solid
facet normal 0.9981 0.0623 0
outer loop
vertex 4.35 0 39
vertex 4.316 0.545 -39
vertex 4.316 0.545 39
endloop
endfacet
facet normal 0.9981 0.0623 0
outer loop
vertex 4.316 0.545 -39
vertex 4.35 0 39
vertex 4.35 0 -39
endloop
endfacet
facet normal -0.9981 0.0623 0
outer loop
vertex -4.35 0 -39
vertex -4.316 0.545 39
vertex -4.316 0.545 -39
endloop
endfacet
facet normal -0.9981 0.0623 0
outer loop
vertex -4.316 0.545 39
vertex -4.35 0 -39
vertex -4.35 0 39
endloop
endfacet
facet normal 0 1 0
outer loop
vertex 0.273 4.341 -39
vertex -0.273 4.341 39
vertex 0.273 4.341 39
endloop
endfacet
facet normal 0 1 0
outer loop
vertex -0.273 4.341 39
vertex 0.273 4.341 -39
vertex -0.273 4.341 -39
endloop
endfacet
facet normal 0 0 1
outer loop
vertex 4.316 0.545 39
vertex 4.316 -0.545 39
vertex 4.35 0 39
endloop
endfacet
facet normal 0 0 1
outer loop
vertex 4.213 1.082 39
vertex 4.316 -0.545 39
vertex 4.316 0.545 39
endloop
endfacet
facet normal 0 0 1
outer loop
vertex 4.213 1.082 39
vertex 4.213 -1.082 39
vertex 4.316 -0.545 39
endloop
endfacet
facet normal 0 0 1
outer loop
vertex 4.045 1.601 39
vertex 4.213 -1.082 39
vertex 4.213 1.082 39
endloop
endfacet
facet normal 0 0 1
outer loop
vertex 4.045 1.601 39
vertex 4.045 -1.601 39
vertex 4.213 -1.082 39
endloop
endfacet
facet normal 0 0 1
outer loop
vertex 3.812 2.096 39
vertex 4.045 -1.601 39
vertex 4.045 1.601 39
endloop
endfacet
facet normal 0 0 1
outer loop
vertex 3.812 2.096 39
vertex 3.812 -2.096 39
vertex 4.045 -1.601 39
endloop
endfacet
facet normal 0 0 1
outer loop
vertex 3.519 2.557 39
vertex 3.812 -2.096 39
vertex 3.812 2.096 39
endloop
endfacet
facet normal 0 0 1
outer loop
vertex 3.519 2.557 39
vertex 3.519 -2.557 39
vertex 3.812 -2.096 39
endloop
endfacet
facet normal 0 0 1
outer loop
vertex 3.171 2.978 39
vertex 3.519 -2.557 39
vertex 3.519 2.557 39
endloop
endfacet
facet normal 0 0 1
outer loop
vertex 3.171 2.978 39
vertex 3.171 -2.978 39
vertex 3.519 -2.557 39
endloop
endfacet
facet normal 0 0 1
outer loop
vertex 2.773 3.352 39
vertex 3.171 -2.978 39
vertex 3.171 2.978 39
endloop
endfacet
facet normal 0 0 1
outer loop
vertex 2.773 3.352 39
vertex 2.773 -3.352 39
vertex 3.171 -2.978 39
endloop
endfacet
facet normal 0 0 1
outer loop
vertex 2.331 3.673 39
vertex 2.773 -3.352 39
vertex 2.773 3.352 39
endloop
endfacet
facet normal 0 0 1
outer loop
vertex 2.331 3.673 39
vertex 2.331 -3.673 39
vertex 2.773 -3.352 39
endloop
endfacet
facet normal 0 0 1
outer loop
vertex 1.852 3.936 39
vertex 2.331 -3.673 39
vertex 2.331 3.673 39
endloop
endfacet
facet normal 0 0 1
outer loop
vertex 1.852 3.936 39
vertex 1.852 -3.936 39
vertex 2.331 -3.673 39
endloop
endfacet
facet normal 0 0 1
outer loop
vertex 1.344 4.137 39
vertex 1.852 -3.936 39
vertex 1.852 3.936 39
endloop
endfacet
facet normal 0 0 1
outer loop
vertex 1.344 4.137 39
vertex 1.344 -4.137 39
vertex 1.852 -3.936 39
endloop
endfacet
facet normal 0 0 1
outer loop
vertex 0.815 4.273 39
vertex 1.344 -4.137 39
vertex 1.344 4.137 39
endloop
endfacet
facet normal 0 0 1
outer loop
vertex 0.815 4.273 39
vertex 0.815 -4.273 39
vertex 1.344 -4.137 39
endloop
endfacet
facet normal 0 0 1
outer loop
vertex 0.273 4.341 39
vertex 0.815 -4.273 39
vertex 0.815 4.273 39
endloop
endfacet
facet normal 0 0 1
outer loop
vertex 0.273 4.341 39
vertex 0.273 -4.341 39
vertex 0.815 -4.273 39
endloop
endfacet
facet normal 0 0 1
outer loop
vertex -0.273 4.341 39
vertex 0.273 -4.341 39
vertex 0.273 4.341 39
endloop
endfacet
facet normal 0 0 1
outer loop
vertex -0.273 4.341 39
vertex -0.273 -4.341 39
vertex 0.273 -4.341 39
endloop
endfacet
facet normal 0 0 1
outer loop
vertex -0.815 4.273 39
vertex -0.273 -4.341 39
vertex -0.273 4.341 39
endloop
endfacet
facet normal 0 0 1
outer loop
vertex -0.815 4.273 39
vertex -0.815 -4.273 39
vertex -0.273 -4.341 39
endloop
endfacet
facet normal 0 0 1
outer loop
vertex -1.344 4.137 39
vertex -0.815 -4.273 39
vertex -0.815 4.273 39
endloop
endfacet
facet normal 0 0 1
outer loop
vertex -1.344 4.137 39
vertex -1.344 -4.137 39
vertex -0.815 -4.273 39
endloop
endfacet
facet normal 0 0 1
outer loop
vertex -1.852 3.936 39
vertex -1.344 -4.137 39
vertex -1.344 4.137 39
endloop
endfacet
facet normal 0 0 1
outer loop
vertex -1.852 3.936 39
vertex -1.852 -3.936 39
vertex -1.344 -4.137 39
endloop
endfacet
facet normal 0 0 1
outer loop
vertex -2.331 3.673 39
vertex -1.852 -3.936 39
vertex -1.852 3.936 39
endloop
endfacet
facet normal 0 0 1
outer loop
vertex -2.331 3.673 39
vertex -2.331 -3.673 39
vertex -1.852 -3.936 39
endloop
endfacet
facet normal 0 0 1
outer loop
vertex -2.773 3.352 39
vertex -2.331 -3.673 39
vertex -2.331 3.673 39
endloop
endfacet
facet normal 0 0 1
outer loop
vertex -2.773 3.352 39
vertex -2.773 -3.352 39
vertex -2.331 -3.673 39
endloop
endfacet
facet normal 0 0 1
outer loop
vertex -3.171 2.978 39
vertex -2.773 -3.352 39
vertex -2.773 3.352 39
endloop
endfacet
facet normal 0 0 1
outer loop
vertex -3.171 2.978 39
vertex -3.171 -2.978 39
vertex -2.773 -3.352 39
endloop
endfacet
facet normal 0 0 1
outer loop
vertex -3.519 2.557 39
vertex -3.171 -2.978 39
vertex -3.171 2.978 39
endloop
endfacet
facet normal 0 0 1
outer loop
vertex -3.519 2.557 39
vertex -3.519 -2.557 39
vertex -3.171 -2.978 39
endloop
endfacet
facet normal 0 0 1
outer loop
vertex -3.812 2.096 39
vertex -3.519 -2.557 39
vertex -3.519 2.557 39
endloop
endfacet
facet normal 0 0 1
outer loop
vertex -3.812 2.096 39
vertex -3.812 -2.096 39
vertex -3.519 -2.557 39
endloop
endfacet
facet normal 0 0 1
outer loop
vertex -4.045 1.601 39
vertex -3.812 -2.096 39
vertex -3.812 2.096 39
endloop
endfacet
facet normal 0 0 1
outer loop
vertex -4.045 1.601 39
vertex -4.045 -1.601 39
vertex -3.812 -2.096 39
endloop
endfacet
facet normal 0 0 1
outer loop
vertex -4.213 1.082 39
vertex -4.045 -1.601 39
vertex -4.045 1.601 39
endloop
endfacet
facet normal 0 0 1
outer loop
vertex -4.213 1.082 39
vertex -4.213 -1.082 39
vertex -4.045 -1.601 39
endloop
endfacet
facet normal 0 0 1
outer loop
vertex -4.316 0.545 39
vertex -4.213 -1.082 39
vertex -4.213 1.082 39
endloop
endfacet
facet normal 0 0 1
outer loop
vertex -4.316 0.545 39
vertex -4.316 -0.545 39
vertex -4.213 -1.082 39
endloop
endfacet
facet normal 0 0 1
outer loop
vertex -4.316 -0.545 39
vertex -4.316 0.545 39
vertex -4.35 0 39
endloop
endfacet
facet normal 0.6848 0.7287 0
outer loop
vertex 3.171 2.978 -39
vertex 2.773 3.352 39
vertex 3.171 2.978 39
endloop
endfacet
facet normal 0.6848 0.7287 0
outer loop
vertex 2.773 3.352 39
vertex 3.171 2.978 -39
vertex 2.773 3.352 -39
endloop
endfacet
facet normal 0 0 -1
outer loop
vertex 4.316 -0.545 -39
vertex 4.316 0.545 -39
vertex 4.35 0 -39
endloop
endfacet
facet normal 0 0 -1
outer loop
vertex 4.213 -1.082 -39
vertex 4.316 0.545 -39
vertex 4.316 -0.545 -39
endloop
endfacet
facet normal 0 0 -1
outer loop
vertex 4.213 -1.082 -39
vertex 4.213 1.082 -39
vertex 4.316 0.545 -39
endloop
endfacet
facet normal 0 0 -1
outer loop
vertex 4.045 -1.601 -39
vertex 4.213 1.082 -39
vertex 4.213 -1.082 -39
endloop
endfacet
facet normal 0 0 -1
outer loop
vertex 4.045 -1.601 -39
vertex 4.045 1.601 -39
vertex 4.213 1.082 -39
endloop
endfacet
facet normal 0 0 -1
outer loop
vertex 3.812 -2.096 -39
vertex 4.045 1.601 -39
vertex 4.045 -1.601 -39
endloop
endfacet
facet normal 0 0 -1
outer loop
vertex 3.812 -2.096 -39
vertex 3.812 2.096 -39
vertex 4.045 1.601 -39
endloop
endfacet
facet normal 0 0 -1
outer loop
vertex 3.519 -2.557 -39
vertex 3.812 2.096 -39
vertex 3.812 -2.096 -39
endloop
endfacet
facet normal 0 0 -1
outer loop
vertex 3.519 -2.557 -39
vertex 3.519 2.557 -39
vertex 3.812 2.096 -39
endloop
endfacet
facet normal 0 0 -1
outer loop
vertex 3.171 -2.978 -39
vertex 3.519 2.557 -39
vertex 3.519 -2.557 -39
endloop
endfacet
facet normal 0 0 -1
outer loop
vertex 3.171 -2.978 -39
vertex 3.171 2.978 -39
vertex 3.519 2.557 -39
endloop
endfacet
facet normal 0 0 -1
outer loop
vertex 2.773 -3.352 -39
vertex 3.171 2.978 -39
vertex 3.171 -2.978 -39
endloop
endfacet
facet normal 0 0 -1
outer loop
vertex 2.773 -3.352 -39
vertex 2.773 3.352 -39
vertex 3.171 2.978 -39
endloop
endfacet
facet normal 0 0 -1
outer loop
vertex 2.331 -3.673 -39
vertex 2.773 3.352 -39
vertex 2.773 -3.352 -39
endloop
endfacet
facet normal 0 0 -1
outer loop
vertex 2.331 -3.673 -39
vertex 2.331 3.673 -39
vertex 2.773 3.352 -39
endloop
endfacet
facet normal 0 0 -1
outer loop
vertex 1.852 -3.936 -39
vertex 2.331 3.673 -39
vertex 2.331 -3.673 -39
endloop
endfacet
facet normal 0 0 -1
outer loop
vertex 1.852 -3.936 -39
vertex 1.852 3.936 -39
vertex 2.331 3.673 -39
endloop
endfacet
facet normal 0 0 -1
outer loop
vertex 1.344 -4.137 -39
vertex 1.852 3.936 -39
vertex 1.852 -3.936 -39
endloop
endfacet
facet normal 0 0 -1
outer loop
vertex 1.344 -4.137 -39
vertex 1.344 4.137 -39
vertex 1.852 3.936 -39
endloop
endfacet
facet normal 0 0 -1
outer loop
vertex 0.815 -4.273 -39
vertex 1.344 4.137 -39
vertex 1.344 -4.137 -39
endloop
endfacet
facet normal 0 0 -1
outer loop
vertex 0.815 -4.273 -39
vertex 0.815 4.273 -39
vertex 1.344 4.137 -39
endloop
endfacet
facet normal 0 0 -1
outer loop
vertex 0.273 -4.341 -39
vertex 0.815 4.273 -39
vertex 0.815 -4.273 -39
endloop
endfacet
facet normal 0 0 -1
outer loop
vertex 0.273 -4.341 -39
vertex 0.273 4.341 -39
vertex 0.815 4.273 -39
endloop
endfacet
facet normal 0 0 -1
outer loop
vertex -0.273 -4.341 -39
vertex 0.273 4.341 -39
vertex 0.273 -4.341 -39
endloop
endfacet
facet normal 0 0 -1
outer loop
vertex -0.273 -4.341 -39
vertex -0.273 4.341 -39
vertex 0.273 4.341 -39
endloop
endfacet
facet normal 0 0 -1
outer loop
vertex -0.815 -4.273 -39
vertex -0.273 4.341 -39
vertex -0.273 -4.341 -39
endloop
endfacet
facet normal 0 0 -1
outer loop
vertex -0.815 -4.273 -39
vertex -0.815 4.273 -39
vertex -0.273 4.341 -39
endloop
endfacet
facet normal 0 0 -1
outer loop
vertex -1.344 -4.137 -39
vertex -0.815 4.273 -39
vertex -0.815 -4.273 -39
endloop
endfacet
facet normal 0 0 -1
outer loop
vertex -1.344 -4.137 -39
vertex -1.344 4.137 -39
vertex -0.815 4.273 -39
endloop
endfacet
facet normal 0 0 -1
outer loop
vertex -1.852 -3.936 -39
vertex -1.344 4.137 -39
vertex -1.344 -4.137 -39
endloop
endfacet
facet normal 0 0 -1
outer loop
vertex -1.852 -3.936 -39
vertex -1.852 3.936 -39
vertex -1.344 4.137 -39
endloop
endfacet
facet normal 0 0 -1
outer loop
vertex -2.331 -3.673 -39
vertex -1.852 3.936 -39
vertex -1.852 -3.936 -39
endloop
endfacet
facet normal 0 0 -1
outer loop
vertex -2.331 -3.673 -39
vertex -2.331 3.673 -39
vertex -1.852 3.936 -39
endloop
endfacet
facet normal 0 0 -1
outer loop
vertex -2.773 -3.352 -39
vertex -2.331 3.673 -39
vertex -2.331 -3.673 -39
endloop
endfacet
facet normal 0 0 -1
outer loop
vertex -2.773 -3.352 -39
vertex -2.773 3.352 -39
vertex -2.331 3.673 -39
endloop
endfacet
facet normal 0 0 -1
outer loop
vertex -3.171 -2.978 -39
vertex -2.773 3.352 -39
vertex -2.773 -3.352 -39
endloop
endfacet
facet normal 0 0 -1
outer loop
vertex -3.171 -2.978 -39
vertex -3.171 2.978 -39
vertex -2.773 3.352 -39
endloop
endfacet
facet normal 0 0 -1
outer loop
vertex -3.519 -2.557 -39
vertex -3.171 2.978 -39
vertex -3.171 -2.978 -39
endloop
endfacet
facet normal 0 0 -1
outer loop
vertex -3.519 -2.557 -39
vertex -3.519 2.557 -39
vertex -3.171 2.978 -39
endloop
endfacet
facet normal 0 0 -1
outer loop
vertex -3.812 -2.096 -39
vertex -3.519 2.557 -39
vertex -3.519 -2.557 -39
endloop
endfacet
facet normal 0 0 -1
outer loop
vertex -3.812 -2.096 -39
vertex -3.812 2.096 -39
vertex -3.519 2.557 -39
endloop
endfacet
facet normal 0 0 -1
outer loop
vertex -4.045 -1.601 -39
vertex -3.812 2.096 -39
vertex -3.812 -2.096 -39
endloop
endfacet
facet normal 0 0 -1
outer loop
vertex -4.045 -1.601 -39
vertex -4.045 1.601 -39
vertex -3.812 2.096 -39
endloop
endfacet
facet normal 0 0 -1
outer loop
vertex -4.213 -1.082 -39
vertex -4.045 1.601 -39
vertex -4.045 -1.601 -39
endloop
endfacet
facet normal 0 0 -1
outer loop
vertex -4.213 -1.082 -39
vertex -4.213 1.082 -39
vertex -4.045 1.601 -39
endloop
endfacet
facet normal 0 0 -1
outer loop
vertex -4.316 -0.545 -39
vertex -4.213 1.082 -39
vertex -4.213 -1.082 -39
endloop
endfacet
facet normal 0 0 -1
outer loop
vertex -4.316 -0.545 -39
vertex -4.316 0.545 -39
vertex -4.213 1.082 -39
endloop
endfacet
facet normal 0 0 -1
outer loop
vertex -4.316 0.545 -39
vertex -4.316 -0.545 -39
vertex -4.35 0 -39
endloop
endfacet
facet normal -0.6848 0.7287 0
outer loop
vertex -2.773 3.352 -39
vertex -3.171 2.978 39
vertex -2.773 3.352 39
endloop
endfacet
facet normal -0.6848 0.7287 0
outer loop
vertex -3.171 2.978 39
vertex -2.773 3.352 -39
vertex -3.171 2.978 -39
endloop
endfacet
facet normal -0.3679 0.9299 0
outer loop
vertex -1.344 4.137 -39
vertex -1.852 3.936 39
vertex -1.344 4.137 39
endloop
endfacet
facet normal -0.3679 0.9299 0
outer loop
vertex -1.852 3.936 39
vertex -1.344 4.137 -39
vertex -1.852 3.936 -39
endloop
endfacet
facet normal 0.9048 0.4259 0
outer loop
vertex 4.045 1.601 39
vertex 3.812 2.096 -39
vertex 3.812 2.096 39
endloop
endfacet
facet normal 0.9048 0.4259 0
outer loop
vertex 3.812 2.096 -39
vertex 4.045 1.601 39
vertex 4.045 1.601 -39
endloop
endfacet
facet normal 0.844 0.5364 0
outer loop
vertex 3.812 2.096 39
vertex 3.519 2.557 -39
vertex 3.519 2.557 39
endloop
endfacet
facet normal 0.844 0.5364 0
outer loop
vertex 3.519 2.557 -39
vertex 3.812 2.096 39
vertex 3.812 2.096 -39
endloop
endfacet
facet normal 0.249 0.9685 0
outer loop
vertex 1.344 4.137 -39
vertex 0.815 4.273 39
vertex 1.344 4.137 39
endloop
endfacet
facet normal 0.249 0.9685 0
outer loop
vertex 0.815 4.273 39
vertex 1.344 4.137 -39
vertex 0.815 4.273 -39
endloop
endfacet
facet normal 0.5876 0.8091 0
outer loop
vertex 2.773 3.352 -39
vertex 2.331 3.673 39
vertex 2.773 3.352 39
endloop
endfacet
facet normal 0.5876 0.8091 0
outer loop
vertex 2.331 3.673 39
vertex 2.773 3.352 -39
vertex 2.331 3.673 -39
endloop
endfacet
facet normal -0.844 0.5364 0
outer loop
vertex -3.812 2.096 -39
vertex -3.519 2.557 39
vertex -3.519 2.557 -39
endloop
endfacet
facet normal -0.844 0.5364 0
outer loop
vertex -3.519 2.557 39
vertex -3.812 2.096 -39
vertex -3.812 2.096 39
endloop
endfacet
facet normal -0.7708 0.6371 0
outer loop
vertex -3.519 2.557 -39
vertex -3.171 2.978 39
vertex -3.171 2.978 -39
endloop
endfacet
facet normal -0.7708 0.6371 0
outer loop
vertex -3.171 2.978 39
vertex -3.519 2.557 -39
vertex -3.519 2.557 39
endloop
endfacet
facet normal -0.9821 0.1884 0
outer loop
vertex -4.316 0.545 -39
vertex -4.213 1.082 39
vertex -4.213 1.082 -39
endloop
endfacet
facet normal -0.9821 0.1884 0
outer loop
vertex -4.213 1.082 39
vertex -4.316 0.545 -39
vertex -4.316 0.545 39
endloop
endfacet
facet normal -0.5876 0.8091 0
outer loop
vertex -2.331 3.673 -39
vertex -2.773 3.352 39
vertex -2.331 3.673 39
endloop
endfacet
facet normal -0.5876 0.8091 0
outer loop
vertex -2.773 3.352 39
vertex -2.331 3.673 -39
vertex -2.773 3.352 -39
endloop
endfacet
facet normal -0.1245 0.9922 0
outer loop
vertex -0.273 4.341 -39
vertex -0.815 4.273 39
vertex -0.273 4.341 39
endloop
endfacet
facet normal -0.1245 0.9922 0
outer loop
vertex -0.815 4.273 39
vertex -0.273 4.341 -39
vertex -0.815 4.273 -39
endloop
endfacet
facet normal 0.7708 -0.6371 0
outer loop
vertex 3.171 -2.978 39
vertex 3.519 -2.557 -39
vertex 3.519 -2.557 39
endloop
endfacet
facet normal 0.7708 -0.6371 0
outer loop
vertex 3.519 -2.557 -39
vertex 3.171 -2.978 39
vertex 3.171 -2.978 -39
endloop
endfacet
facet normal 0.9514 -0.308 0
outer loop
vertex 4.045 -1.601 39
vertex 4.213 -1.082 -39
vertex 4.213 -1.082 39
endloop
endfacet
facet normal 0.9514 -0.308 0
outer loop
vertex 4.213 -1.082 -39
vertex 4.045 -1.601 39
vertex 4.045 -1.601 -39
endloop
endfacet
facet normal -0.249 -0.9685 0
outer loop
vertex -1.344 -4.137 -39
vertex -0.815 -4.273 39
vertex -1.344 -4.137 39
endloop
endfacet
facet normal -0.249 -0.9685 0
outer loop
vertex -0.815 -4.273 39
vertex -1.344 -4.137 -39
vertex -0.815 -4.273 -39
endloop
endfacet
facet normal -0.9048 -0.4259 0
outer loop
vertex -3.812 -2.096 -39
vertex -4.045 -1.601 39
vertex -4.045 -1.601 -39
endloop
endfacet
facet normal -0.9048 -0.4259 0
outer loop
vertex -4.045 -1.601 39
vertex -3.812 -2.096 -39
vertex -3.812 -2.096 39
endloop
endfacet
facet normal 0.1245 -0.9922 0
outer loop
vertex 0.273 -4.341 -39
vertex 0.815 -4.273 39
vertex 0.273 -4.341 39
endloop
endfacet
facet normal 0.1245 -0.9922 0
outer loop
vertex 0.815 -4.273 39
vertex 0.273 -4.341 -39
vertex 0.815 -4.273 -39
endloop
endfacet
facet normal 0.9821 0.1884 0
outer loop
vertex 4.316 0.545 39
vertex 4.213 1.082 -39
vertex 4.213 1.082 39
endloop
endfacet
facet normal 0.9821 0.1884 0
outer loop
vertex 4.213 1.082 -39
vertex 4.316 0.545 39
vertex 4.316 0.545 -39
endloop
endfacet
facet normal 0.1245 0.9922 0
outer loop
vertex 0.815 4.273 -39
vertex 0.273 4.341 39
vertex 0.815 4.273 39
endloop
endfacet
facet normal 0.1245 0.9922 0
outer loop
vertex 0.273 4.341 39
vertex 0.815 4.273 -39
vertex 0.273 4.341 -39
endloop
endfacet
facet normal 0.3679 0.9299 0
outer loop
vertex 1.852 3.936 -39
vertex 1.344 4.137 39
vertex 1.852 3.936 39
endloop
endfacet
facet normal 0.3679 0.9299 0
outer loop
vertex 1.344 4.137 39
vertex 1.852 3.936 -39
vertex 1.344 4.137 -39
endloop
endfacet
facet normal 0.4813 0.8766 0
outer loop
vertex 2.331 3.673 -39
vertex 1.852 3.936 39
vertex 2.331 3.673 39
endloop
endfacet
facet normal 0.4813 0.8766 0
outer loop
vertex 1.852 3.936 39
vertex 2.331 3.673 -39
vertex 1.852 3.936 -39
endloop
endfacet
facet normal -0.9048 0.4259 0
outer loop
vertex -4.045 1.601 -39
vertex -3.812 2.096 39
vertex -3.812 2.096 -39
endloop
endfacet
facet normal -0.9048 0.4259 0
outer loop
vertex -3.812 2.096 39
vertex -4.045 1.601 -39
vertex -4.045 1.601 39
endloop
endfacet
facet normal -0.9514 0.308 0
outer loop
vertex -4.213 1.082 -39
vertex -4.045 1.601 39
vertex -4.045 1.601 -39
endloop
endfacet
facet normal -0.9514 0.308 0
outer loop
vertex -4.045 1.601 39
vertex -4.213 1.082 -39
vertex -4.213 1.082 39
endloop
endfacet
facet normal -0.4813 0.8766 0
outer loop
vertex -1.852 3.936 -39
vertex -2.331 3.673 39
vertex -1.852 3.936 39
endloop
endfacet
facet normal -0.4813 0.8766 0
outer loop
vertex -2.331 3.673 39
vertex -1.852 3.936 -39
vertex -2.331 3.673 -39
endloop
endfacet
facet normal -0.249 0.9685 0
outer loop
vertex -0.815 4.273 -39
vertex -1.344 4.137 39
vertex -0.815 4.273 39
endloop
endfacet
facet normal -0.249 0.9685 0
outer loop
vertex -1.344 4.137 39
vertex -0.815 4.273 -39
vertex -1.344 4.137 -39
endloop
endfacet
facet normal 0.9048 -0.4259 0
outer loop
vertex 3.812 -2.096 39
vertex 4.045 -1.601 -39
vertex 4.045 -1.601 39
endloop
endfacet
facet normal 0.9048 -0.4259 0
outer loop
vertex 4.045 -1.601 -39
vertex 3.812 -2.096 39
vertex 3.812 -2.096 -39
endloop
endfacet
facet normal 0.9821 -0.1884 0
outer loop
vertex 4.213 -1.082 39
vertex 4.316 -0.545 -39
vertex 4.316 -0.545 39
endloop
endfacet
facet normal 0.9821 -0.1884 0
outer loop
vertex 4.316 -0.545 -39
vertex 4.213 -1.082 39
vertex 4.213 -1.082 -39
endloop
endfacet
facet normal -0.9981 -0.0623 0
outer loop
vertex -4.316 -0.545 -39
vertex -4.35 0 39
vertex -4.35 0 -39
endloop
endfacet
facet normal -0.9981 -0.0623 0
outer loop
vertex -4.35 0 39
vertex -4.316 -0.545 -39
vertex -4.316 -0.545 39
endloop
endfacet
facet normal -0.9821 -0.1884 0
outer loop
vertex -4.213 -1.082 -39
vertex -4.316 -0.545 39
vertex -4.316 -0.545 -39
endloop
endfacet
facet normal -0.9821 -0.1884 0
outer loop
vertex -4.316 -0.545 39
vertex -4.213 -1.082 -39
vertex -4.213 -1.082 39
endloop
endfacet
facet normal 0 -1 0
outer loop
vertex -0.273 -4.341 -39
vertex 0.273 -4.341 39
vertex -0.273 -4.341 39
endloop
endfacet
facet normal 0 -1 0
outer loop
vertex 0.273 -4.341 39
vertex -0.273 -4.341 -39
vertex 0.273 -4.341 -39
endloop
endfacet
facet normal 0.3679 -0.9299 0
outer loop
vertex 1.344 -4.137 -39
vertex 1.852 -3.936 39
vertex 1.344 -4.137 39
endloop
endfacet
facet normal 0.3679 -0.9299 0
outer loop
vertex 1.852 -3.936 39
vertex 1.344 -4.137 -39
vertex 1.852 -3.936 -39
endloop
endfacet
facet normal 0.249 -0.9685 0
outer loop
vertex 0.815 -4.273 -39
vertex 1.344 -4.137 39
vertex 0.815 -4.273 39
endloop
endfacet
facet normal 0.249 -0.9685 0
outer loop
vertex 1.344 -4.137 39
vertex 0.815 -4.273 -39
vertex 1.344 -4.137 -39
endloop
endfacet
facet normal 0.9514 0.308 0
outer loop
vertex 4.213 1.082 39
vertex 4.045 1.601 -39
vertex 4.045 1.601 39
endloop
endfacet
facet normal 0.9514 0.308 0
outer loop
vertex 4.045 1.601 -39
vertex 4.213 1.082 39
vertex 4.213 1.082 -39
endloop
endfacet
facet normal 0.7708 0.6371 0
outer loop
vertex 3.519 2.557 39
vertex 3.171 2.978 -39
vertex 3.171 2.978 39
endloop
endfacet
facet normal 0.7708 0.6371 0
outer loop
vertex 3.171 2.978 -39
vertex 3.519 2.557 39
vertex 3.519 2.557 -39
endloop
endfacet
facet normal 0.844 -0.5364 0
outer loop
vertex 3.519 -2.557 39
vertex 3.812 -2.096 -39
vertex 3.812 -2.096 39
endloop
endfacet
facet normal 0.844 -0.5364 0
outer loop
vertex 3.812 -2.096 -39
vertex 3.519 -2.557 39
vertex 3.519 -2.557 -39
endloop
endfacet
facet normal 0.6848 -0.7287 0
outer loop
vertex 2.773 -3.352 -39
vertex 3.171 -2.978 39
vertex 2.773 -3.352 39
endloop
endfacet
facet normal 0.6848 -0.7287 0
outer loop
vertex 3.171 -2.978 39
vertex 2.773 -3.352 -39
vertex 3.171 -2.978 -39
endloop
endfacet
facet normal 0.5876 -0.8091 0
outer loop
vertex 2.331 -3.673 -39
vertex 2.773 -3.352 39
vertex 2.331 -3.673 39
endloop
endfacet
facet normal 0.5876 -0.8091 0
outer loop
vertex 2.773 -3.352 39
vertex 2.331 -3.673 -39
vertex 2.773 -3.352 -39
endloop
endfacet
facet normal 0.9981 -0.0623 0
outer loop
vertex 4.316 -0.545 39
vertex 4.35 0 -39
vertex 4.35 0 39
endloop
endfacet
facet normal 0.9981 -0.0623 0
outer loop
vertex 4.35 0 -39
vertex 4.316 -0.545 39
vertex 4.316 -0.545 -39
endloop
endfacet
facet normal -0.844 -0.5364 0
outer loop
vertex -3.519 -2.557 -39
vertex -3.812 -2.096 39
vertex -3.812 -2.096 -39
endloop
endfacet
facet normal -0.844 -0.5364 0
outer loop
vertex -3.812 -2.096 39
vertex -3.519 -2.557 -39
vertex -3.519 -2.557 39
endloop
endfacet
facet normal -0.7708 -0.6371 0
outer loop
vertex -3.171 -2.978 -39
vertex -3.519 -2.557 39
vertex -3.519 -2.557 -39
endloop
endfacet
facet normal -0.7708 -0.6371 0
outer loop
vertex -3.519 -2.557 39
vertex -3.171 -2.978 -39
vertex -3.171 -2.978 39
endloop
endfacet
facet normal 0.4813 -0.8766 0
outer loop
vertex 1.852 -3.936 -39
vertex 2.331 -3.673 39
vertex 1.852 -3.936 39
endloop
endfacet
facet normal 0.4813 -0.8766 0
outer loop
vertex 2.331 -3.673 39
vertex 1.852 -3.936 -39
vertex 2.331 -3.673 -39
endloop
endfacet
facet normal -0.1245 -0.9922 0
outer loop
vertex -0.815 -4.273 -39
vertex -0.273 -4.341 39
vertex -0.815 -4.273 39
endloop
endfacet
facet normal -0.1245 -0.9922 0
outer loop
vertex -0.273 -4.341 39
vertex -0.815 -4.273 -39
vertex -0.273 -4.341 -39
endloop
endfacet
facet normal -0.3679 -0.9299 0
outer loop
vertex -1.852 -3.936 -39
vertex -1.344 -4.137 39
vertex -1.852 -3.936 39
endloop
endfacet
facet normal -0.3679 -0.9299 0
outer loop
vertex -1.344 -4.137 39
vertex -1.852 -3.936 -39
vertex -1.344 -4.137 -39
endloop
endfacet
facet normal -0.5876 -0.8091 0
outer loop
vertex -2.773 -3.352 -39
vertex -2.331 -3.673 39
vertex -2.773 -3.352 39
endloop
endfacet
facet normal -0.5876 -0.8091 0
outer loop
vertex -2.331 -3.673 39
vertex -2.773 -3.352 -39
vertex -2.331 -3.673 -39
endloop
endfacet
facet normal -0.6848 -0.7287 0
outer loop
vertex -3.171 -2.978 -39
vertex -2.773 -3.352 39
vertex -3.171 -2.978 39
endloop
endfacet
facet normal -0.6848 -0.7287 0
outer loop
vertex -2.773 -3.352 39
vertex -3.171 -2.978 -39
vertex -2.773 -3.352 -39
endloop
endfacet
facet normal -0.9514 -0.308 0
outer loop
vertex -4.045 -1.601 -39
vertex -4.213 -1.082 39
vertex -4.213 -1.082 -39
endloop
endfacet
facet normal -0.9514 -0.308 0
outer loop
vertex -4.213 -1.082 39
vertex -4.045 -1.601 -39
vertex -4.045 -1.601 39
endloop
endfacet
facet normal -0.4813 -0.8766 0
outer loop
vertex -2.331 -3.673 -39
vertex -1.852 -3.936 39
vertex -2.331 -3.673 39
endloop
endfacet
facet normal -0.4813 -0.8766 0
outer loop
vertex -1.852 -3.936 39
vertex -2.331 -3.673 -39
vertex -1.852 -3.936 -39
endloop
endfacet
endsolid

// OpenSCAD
$fn = 50;


difference() {
	union() {
		translate(v = [0, 0, -39.0000000000]) {
			cylinder(h = 78, r = 4.3500000000);
		}
	}
	union() {
		translate(v = [0, 0, -100.0000000000]) {
			cylinder(h = 200, r = 0);
		}
	}
}
